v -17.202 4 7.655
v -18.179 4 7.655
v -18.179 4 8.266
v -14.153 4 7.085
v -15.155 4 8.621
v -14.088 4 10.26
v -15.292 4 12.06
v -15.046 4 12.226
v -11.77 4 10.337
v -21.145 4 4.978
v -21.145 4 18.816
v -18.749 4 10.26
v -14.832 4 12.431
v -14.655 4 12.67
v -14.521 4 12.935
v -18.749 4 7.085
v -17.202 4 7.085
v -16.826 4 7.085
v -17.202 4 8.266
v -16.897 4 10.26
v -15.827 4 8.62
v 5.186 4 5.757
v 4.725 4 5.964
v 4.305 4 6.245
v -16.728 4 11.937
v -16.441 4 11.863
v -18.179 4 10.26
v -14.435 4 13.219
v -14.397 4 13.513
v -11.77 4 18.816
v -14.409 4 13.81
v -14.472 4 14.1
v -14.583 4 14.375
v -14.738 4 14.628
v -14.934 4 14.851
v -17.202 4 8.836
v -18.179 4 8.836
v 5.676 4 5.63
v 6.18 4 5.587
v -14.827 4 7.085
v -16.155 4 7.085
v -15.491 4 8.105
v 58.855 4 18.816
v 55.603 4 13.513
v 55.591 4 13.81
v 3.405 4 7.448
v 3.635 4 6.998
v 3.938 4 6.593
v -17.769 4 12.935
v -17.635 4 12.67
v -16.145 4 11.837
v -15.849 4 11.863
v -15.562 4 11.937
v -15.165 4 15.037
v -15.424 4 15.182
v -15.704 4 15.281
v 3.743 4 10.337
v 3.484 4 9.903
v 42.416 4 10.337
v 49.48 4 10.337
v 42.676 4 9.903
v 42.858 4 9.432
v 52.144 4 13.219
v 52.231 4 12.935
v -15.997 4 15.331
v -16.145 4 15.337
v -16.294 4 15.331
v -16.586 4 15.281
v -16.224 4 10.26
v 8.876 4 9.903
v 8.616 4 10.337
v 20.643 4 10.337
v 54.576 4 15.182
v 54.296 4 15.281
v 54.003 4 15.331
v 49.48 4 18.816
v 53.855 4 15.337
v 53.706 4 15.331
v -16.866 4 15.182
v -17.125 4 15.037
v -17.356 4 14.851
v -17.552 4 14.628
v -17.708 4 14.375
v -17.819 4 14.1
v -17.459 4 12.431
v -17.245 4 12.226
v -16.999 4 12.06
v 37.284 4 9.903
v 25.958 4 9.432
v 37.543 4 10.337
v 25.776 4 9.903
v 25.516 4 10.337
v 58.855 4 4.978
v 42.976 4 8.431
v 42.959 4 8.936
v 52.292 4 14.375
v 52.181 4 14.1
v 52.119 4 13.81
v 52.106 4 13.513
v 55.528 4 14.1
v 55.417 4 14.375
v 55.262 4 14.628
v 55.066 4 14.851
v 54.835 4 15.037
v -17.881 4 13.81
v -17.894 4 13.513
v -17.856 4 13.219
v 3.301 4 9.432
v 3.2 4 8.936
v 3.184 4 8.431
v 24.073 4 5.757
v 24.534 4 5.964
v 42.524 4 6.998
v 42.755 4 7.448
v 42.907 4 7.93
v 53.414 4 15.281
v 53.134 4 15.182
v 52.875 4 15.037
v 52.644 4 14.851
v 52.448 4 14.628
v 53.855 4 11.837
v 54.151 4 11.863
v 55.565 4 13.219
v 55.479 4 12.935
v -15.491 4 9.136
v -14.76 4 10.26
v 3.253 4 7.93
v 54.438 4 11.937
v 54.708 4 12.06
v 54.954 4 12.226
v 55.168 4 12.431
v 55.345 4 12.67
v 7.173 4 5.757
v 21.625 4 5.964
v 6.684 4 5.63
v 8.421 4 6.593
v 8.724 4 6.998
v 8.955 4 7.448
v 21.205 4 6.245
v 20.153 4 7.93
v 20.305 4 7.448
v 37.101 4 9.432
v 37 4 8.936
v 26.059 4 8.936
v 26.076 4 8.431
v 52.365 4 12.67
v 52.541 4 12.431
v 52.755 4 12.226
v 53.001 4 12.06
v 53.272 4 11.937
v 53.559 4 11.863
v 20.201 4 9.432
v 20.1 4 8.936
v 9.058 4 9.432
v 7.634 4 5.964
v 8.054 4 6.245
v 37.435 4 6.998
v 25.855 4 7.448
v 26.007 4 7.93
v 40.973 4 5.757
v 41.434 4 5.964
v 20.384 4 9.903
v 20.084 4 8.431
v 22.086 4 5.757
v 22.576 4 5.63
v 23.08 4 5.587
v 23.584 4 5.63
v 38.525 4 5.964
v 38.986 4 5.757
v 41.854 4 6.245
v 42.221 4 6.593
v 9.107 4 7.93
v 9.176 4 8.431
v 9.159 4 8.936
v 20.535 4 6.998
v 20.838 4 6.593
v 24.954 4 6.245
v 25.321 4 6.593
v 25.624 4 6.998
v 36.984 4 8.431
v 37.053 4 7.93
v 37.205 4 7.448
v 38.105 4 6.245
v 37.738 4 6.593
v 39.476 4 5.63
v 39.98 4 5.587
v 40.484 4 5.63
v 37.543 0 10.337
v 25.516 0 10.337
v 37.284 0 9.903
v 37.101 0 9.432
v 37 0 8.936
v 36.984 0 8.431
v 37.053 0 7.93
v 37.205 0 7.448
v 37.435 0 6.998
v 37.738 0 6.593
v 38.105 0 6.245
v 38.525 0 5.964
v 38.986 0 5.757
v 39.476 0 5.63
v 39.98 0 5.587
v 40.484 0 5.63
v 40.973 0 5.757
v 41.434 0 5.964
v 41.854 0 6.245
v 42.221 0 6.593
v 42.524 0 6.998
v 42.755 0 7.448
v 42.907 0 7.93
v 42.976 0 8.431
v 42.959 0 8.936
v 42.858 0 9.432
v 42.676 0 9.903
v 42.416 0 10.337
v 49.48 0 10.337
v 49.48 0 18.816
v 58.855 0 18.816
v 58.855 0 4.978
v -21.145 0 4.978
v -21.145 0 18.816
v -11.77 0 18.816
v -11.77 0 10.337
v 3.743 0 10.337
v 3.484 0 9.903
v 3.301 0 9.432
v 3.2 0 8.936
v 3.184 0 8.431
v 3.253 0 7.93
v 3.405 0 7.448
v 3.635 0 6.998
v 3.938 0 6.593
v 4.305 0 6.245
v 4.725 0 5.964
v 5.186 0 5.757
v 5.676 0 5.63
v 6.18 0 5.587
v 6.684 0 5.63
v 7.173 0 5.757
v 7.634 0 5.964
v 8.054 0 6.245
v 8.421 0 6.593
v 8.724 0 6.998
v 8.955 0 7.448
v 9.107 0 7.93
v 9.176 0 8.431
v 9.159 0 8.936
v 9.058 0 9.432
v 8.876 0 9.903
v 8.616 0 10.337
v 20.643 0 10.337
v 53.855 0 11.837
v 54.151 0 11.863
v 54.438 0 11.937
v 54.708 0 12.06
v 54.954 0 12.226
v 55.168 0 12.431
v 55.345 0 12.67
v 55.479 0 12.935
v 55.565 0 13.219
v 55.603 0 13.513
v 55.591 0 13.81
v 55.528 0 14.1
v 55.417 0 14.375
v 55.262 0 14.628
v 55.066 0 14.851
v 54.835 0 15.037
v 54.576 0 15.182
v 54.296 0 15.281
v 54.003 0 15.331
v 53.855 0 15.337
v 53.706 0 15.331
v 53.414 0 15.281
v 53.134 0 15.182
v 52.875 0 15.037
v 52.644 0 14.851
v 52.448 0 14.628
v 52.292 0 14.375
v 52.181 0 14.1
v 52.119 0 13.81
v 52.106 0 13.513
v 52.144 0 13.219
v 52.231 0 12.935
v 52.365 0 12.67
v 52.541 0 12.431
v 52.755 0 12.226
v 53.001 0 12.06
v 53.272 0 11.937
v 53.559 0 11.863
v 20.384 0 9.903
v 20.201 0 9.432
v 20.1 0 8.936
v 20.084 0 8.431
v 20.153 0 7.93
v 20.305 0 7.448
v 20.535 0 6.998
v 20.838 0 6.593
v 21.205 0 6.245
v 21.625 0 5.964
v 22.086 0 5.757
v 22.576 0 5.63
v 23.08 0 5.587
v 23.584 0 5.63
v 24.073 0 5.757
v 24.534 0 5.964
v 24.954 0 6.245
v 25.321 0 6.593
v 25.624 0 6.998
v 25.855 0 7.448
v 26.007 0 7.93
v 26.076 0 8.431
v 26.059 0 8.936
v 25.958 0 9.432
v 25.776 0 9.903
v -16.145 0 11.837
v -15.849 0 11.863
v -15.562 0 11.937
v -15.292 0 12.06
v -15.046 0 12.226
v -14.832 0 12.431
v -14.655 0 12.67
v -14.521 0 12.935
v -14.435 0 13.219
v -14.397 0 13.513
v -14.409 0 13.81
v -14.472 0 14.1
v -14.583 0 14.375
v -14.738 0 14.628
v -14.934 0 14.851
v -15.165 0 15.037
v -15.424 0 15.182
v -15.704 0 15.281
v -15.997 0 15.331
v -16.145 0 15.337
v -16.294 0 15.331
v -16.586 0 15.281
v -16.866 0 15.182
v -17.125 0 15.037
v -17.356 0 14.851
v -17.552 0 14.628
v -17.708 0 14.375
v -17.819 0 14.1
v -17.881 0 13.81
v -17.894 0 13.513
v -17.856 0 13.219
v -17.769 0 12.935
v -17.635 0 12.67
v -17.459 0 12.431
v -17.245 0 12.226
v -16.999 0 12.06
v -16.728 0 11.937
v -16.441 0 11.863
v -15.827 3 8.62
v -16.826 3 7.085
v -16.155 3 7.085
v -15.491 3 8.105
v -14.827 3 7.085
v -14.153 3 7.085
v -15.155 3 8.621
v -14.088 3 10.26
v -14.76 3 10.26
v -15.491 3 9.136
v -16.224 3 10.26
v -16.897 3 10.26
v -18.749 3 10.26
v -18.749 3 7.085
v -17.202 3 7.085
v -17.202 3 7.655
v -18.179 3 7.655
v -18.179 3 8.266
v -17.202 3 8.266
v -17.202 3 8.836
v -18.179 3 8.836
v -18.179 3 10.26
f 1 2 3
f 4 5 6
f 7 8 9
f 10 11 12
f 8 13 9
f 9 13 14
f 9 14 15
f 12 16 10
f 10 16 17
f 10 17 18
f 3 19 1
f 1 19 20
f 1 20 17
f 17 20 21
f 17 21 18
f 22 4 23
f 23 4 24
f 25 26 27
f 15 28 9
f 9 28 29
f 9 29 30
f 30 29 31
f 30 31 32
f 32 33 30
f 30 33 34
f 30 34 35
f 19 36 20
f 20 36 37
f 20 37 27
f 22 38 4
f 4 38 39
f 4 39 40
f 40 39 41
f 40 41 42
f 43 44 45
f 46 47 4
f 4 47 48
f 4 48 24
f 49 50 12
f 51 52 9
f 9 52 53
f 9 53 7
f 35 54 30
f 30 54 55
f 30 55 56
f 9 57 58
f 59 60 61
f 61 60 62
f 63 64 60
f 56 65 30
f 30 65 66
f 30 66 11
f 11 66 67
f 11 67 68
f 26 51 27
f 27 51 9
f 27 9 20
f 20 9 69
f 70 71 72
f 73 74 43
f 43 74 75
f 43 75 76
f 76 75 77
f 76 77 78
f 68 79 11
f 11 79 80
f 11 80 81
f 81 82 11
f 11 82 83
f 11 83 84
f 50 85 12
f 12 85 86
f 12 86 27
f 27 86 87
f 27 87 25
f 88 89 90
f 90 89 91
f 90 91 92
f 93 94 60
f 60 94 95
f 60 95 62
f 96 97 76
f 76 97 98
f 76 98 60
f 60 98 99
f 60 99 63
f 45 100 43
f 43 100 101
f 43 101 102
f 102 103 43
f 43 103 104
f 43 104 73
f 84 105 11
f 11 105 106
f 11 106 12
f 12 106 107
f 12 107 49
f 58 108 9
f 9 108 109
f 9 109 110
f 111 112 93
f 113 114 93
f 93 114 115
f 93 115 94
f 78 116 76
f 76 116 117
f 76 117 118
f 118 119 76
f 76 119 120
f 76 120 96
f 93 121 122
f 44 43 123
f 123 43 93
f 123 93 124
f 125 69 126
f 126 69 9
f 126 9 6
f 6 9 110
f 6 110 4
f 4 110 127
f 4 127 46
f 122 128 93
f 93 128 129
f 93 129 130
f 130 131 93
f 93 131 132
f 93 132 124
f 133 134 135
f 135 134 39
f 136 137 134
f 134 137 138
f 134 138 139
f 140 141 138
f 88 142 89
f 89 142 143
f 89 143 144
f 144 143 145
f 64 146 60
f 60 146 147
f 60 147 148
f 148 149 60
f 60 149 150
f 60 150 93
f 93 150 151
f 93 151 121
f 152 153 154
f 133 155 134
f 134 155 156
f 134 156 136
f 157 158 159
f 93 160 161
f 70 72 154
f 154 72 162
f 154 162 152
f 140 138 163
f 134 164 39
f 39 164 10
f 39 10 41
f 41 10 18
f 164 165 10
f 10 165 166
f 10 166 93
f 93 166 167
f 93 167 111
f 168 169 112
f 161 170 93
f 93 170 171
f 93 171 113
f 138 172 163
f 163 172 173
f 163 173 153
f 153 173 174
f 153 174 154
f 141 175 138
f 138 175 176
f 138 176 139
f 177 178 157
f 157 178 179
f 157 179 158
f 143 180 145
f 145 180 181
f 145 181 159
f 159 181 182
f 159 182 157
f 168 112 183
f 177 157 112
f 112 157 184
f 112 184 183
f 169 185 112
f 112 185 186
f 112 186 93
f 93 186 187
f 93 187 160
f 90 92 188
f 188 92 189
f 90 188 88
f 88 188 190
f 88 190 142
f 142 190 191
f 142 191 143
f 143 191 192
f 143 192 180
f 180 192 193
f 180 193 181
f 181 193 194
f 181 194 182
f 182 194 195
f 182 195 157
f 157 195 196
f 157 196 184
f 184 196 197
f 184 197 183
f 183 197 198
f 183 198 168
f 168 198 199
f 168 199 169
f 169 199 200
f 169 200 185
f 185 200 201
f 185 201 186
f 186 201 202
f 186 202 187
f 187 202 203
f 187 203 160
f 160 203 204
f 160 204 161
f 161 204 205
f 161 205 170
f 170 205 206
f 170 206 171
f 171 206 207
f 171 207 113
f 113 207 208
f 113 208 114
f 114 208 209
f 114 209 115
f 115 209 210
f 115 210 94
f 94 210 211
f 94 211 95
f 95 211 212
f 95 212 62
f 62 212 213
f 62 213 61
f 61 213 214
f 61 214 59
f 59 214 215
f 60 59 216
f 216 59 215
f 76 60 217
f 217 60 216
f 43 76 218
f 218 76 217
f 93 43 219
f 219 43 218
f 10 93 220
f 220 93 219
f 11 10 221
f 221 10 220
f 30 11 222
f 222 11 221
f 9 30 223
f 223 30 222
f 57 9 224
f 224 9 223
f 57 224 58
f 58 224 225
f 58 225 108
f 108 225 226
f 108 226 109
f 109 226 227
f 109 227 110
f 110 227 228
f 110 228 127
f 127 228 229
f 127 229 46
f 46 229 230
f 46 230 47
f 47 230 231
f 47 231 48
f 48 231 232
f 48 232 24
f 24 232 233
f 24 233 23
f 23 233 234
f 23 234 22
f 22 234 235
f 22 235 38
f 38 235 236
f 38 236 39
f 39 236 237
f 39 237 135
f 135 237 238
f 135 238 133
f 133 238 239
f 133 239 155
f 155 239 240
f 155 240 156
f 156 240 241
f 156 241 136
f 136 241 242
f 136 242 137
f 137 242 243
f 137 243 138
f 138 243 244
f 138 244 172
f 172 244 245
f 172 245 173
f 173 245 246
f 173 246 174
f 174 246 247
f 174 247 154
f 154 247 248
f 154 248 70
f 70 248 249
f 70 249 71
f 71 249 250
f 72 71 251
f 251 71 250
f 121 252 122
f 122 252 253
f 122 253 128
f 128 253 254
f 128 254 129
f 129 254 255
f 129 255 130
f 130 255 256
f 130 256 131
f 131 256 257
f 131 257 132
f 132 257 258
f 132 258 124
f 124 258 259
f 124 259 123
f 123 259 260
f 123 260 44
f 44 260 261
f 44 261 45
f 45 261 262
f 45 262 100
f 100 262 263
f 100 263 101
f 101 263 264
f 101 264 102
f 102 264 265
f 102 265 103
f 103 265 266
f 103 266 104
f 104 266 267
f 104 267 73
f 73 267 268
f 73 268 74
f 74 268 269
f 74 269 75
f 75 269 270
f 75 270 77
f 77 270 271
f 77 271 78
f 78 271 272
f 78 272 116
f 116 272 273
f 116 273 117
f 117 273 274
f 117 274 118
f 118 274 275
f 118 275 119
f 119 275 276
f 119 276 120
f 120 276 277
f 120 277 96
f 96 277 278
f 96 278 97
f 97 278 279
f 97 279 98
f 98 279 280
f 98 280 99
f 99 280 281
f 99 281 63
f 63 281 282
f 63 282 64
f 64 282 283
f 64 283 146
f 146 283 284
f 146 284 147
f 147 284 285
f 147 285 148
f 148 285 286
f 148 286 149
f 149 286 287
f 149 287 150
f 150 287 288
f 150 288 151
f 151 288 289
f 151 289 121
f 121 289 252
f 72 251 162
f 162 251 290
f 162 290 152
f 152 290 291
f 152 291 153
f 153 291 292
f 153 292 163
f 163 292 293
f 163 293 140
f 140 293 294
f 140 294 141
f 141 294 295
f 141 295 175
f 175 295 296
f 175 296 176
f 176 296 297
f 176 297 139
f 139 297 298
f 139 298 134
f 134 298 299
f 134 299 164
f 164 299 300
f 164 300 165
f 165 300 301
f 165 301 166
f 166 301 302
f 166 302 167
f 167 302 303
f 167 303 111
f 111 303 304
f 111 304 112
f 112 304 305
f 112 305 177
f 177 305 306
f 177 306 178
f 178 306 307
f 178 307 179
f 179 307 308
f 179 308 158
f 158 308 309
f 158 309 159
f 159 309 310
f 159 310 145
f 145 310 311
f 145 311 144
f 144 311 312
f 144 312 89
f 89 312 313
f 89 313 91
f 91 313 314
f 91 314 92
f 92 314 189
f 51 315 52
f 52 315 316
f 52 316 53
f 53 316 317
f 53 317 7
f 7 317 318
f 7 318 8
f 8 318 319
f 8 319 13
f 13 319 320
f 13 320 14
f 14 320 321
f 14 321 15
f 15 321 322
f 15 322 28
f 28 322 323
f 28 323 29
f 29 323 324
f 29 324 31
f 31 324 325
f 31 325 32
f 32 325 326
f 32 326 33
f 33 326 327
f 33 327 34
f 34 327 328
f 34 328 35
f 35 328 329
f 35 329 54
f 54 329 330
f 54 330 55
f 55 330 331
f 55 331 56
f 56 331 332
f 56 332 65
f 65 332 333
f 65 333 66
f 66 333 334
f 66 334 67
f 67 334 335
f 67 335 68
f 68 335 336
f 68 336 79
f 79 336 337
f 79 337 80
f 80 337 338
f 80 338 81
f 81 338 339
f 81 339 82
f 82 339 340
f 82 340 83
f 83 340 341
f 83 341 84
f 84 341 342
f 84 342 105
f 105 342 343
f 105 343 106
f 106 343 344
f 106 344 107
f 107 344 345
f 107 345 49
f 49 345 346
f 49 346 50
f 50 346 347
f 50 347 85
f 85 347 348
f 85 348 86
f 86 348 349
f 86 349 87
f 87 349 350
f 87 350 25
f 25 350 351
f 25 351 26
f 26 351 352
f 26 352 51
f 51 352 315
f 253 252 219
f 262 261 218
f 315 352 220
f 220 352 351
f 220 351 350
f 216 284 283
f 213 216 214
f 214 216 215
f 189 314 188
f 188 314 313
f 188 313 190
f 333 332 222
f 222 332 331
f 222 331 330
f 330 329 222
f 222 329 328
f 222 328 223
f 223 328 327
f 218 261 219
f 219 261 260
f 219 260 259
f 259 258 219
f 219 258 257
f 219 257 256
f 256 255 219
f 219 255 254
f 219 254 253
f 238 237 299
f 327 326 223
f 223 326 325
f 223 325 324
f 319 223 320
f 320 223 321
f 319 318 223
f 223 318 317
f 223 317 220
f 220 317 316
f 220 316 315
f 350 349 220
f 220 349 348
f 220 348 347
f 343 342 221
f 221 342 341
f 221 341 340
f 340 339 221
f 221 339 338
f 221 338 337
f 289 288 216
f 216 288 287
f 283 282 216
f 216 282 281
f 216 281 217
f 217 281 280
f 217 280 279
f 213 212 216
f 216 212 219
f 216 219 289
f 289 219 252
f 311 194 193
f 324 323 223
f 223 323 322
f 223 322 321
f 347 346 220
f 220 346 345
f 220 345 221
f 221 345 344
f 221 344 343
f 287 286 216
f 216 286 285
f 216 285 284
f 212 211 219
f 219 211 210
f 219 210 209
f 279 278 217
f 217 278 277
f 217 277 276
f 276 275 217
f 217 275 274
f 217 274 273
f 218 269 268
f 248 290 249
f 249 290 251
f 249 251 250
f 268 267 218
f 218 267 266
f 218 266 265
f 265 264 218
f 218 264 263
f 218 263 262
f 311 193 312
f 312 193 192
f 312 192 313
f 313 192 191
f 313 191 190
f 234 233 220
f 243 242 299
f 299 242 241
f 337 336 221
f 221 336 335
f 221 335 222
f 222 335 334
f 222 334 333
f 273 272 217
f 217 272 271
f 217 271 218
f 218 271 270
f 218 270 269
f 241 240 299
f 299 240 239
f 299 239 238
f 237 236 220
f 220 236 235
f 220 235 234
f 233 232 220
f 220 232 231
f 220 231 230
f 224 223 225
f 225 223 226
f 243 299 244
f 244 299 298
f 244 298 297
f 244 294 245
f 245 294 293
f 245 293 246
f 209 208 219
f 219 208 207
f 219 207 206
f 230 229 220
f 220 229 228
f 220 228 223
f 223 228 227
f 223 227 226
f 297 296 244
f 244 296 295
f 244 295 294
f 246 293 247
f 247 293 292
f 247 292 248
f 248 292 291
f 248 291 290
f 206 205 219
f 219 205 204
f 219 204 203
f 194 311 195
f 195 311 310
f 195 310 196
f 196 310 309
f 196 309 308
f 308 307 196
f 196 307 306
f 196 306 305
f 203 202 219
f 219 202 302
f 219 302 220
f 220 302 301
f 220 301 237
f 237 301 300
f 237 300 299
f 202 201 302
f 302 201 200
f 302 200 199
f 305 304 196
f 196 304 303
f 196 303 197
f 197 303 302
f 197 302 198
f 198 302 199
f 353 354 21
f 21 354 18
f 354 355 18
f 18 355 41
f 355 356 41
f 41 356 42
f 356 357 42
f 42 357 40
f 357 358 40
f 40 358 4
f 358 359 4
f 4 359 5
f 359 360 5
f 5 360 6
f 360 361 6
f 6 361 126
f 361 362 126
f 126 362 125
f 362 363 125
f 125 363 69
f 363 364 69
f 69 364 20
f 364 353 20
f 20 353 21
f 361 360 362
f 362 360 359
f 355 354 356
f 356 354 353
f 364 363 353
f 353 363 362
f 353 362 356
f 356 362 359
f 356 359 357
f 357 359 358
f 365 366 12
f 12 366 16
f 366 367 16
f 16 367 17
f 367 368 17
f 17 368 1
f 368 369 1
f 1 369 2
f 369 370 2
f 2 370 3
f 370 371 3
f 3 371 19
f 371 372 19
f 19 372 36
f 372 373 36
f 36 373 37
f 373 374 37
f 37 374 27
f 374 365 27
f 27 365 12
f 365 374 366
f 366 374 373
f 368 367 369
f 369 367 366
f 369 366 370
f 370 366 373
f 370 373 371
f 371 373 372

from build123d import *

# Parameters (mm, degrees)
BOSS_EXTRUDE1_OUTLINE_R = 1.75
BOSS_EXTRUDE1_DEPTH     = 4
CUT_EXTRUDE1_DEPTH      = 1


# Read off the part's stored shape, not the designer's step: Boss-Extrude1
with BuildPart() as part:
    # Boss-Extrude1 outline → Boss-Extrude1 (new body)
    with BuildSketch(Plane(origin=(0, 0, 0), x_dir=(1, 0, 0), z_dir=(0, 1, 0))):
        with BuildLine():
            Line((25.516474615, -10.33744254), (37.54307775, -10.33744254))
            ThreePointArc((37.54307775, -10.33744254), (39.979776182, -5.587442326), (42.416474615, -10.33744254))
            Line((42.416474615, -10.33744254), (49.479776182, -10.33744254))
            Line((49.479776182, -10.33744254), (49.479776182, -18.81631662))
            Line((49.479776182, -18.81631662), (58.854776182, -18.81631662))
            Line((58.854776182, -18.81631662), (58.854776182, -4.977921711))
            Line((58.854776182, -4.977921711), (-21.145223818, -4.977921711))
            Line((-21.145223818, -4.977921711), (-21.145223818, -18.81631662))
            Line((-21.145223818, -18.81631662), (-11.770223818, -18.81631662))
            Line((-11.770223818, -18.81631662), (-11.770223818, -10.33744254))
            Line((-11.770223818, -10.33744254), (3.74307775, -10.33744254))
            ThreePointArc((3.74307775, -10.33744254), (6.179776182, -5.587442326), (8.616474615, -10.33744254))
            Line((8.616474615, -10.33744254), (20.64307775, -10.33744254))
            ThreePointArc((20.64307775, -10.33744254), (23.079776182, -5.587442326), (25.516474615, -10.33744254))
        make_face()
        with Locations((-16.145223818, -13.587442433)):
            Circle(BOSS_EXTRUDE1_OUTLINE_R, mode=Mode.SUBTRACT)
        with Locations((53.854776182, -13.587442433)):
            Circle(BOSS_EXTRUDE1_OUTLINE_R, mode=Mode.SUBTRACT)
    extrude(amount=BOSS_EXTRUDE1_DEPTH)

    # Sketch2 → Cut-Extrude1 (cut)
    with BuildSketch(Plane(origin=(0, 4, 0), x_dir=(1, 0, 0), z_dir=(0, 1, 0))):
        Polygon((-18.749121586, -7.085274104), (-17.202326714, -7.085274104), (-17.202326714, -7.655145899), (-18.179249791, -7.655145899), (-18.179249791, -8.265722822), (-17.202326714, -8.265722822), (-17.202326714, -8.835594617), (-18.179249791, -8.835594617), (-18.179249791, -10.260274104), (-18.749121586, -10.260274104), align=None)
        Polygon((-16.826440296, -7.085274104), (-16.15480568, -7.085274104), (-15.491439294, -8.104810362), (-14.826800873, -7.085274104), (-14.153258204, -7.085274104), (-15.154985969, -8.621256676), (-14.088384406, -10.260274104), (-14.760019022, -10.260274104), (-15.491439294, -9.136430955), (-16.224131602, -10.260274104), (-16.897038253, -10.260274104), (-15.827256602, -8.619984641), align=None)
    extrude(amount=-CUT_EXTRUDE1_DEPTH, mode=Mode.SUBTRACT)


solid = part.part
